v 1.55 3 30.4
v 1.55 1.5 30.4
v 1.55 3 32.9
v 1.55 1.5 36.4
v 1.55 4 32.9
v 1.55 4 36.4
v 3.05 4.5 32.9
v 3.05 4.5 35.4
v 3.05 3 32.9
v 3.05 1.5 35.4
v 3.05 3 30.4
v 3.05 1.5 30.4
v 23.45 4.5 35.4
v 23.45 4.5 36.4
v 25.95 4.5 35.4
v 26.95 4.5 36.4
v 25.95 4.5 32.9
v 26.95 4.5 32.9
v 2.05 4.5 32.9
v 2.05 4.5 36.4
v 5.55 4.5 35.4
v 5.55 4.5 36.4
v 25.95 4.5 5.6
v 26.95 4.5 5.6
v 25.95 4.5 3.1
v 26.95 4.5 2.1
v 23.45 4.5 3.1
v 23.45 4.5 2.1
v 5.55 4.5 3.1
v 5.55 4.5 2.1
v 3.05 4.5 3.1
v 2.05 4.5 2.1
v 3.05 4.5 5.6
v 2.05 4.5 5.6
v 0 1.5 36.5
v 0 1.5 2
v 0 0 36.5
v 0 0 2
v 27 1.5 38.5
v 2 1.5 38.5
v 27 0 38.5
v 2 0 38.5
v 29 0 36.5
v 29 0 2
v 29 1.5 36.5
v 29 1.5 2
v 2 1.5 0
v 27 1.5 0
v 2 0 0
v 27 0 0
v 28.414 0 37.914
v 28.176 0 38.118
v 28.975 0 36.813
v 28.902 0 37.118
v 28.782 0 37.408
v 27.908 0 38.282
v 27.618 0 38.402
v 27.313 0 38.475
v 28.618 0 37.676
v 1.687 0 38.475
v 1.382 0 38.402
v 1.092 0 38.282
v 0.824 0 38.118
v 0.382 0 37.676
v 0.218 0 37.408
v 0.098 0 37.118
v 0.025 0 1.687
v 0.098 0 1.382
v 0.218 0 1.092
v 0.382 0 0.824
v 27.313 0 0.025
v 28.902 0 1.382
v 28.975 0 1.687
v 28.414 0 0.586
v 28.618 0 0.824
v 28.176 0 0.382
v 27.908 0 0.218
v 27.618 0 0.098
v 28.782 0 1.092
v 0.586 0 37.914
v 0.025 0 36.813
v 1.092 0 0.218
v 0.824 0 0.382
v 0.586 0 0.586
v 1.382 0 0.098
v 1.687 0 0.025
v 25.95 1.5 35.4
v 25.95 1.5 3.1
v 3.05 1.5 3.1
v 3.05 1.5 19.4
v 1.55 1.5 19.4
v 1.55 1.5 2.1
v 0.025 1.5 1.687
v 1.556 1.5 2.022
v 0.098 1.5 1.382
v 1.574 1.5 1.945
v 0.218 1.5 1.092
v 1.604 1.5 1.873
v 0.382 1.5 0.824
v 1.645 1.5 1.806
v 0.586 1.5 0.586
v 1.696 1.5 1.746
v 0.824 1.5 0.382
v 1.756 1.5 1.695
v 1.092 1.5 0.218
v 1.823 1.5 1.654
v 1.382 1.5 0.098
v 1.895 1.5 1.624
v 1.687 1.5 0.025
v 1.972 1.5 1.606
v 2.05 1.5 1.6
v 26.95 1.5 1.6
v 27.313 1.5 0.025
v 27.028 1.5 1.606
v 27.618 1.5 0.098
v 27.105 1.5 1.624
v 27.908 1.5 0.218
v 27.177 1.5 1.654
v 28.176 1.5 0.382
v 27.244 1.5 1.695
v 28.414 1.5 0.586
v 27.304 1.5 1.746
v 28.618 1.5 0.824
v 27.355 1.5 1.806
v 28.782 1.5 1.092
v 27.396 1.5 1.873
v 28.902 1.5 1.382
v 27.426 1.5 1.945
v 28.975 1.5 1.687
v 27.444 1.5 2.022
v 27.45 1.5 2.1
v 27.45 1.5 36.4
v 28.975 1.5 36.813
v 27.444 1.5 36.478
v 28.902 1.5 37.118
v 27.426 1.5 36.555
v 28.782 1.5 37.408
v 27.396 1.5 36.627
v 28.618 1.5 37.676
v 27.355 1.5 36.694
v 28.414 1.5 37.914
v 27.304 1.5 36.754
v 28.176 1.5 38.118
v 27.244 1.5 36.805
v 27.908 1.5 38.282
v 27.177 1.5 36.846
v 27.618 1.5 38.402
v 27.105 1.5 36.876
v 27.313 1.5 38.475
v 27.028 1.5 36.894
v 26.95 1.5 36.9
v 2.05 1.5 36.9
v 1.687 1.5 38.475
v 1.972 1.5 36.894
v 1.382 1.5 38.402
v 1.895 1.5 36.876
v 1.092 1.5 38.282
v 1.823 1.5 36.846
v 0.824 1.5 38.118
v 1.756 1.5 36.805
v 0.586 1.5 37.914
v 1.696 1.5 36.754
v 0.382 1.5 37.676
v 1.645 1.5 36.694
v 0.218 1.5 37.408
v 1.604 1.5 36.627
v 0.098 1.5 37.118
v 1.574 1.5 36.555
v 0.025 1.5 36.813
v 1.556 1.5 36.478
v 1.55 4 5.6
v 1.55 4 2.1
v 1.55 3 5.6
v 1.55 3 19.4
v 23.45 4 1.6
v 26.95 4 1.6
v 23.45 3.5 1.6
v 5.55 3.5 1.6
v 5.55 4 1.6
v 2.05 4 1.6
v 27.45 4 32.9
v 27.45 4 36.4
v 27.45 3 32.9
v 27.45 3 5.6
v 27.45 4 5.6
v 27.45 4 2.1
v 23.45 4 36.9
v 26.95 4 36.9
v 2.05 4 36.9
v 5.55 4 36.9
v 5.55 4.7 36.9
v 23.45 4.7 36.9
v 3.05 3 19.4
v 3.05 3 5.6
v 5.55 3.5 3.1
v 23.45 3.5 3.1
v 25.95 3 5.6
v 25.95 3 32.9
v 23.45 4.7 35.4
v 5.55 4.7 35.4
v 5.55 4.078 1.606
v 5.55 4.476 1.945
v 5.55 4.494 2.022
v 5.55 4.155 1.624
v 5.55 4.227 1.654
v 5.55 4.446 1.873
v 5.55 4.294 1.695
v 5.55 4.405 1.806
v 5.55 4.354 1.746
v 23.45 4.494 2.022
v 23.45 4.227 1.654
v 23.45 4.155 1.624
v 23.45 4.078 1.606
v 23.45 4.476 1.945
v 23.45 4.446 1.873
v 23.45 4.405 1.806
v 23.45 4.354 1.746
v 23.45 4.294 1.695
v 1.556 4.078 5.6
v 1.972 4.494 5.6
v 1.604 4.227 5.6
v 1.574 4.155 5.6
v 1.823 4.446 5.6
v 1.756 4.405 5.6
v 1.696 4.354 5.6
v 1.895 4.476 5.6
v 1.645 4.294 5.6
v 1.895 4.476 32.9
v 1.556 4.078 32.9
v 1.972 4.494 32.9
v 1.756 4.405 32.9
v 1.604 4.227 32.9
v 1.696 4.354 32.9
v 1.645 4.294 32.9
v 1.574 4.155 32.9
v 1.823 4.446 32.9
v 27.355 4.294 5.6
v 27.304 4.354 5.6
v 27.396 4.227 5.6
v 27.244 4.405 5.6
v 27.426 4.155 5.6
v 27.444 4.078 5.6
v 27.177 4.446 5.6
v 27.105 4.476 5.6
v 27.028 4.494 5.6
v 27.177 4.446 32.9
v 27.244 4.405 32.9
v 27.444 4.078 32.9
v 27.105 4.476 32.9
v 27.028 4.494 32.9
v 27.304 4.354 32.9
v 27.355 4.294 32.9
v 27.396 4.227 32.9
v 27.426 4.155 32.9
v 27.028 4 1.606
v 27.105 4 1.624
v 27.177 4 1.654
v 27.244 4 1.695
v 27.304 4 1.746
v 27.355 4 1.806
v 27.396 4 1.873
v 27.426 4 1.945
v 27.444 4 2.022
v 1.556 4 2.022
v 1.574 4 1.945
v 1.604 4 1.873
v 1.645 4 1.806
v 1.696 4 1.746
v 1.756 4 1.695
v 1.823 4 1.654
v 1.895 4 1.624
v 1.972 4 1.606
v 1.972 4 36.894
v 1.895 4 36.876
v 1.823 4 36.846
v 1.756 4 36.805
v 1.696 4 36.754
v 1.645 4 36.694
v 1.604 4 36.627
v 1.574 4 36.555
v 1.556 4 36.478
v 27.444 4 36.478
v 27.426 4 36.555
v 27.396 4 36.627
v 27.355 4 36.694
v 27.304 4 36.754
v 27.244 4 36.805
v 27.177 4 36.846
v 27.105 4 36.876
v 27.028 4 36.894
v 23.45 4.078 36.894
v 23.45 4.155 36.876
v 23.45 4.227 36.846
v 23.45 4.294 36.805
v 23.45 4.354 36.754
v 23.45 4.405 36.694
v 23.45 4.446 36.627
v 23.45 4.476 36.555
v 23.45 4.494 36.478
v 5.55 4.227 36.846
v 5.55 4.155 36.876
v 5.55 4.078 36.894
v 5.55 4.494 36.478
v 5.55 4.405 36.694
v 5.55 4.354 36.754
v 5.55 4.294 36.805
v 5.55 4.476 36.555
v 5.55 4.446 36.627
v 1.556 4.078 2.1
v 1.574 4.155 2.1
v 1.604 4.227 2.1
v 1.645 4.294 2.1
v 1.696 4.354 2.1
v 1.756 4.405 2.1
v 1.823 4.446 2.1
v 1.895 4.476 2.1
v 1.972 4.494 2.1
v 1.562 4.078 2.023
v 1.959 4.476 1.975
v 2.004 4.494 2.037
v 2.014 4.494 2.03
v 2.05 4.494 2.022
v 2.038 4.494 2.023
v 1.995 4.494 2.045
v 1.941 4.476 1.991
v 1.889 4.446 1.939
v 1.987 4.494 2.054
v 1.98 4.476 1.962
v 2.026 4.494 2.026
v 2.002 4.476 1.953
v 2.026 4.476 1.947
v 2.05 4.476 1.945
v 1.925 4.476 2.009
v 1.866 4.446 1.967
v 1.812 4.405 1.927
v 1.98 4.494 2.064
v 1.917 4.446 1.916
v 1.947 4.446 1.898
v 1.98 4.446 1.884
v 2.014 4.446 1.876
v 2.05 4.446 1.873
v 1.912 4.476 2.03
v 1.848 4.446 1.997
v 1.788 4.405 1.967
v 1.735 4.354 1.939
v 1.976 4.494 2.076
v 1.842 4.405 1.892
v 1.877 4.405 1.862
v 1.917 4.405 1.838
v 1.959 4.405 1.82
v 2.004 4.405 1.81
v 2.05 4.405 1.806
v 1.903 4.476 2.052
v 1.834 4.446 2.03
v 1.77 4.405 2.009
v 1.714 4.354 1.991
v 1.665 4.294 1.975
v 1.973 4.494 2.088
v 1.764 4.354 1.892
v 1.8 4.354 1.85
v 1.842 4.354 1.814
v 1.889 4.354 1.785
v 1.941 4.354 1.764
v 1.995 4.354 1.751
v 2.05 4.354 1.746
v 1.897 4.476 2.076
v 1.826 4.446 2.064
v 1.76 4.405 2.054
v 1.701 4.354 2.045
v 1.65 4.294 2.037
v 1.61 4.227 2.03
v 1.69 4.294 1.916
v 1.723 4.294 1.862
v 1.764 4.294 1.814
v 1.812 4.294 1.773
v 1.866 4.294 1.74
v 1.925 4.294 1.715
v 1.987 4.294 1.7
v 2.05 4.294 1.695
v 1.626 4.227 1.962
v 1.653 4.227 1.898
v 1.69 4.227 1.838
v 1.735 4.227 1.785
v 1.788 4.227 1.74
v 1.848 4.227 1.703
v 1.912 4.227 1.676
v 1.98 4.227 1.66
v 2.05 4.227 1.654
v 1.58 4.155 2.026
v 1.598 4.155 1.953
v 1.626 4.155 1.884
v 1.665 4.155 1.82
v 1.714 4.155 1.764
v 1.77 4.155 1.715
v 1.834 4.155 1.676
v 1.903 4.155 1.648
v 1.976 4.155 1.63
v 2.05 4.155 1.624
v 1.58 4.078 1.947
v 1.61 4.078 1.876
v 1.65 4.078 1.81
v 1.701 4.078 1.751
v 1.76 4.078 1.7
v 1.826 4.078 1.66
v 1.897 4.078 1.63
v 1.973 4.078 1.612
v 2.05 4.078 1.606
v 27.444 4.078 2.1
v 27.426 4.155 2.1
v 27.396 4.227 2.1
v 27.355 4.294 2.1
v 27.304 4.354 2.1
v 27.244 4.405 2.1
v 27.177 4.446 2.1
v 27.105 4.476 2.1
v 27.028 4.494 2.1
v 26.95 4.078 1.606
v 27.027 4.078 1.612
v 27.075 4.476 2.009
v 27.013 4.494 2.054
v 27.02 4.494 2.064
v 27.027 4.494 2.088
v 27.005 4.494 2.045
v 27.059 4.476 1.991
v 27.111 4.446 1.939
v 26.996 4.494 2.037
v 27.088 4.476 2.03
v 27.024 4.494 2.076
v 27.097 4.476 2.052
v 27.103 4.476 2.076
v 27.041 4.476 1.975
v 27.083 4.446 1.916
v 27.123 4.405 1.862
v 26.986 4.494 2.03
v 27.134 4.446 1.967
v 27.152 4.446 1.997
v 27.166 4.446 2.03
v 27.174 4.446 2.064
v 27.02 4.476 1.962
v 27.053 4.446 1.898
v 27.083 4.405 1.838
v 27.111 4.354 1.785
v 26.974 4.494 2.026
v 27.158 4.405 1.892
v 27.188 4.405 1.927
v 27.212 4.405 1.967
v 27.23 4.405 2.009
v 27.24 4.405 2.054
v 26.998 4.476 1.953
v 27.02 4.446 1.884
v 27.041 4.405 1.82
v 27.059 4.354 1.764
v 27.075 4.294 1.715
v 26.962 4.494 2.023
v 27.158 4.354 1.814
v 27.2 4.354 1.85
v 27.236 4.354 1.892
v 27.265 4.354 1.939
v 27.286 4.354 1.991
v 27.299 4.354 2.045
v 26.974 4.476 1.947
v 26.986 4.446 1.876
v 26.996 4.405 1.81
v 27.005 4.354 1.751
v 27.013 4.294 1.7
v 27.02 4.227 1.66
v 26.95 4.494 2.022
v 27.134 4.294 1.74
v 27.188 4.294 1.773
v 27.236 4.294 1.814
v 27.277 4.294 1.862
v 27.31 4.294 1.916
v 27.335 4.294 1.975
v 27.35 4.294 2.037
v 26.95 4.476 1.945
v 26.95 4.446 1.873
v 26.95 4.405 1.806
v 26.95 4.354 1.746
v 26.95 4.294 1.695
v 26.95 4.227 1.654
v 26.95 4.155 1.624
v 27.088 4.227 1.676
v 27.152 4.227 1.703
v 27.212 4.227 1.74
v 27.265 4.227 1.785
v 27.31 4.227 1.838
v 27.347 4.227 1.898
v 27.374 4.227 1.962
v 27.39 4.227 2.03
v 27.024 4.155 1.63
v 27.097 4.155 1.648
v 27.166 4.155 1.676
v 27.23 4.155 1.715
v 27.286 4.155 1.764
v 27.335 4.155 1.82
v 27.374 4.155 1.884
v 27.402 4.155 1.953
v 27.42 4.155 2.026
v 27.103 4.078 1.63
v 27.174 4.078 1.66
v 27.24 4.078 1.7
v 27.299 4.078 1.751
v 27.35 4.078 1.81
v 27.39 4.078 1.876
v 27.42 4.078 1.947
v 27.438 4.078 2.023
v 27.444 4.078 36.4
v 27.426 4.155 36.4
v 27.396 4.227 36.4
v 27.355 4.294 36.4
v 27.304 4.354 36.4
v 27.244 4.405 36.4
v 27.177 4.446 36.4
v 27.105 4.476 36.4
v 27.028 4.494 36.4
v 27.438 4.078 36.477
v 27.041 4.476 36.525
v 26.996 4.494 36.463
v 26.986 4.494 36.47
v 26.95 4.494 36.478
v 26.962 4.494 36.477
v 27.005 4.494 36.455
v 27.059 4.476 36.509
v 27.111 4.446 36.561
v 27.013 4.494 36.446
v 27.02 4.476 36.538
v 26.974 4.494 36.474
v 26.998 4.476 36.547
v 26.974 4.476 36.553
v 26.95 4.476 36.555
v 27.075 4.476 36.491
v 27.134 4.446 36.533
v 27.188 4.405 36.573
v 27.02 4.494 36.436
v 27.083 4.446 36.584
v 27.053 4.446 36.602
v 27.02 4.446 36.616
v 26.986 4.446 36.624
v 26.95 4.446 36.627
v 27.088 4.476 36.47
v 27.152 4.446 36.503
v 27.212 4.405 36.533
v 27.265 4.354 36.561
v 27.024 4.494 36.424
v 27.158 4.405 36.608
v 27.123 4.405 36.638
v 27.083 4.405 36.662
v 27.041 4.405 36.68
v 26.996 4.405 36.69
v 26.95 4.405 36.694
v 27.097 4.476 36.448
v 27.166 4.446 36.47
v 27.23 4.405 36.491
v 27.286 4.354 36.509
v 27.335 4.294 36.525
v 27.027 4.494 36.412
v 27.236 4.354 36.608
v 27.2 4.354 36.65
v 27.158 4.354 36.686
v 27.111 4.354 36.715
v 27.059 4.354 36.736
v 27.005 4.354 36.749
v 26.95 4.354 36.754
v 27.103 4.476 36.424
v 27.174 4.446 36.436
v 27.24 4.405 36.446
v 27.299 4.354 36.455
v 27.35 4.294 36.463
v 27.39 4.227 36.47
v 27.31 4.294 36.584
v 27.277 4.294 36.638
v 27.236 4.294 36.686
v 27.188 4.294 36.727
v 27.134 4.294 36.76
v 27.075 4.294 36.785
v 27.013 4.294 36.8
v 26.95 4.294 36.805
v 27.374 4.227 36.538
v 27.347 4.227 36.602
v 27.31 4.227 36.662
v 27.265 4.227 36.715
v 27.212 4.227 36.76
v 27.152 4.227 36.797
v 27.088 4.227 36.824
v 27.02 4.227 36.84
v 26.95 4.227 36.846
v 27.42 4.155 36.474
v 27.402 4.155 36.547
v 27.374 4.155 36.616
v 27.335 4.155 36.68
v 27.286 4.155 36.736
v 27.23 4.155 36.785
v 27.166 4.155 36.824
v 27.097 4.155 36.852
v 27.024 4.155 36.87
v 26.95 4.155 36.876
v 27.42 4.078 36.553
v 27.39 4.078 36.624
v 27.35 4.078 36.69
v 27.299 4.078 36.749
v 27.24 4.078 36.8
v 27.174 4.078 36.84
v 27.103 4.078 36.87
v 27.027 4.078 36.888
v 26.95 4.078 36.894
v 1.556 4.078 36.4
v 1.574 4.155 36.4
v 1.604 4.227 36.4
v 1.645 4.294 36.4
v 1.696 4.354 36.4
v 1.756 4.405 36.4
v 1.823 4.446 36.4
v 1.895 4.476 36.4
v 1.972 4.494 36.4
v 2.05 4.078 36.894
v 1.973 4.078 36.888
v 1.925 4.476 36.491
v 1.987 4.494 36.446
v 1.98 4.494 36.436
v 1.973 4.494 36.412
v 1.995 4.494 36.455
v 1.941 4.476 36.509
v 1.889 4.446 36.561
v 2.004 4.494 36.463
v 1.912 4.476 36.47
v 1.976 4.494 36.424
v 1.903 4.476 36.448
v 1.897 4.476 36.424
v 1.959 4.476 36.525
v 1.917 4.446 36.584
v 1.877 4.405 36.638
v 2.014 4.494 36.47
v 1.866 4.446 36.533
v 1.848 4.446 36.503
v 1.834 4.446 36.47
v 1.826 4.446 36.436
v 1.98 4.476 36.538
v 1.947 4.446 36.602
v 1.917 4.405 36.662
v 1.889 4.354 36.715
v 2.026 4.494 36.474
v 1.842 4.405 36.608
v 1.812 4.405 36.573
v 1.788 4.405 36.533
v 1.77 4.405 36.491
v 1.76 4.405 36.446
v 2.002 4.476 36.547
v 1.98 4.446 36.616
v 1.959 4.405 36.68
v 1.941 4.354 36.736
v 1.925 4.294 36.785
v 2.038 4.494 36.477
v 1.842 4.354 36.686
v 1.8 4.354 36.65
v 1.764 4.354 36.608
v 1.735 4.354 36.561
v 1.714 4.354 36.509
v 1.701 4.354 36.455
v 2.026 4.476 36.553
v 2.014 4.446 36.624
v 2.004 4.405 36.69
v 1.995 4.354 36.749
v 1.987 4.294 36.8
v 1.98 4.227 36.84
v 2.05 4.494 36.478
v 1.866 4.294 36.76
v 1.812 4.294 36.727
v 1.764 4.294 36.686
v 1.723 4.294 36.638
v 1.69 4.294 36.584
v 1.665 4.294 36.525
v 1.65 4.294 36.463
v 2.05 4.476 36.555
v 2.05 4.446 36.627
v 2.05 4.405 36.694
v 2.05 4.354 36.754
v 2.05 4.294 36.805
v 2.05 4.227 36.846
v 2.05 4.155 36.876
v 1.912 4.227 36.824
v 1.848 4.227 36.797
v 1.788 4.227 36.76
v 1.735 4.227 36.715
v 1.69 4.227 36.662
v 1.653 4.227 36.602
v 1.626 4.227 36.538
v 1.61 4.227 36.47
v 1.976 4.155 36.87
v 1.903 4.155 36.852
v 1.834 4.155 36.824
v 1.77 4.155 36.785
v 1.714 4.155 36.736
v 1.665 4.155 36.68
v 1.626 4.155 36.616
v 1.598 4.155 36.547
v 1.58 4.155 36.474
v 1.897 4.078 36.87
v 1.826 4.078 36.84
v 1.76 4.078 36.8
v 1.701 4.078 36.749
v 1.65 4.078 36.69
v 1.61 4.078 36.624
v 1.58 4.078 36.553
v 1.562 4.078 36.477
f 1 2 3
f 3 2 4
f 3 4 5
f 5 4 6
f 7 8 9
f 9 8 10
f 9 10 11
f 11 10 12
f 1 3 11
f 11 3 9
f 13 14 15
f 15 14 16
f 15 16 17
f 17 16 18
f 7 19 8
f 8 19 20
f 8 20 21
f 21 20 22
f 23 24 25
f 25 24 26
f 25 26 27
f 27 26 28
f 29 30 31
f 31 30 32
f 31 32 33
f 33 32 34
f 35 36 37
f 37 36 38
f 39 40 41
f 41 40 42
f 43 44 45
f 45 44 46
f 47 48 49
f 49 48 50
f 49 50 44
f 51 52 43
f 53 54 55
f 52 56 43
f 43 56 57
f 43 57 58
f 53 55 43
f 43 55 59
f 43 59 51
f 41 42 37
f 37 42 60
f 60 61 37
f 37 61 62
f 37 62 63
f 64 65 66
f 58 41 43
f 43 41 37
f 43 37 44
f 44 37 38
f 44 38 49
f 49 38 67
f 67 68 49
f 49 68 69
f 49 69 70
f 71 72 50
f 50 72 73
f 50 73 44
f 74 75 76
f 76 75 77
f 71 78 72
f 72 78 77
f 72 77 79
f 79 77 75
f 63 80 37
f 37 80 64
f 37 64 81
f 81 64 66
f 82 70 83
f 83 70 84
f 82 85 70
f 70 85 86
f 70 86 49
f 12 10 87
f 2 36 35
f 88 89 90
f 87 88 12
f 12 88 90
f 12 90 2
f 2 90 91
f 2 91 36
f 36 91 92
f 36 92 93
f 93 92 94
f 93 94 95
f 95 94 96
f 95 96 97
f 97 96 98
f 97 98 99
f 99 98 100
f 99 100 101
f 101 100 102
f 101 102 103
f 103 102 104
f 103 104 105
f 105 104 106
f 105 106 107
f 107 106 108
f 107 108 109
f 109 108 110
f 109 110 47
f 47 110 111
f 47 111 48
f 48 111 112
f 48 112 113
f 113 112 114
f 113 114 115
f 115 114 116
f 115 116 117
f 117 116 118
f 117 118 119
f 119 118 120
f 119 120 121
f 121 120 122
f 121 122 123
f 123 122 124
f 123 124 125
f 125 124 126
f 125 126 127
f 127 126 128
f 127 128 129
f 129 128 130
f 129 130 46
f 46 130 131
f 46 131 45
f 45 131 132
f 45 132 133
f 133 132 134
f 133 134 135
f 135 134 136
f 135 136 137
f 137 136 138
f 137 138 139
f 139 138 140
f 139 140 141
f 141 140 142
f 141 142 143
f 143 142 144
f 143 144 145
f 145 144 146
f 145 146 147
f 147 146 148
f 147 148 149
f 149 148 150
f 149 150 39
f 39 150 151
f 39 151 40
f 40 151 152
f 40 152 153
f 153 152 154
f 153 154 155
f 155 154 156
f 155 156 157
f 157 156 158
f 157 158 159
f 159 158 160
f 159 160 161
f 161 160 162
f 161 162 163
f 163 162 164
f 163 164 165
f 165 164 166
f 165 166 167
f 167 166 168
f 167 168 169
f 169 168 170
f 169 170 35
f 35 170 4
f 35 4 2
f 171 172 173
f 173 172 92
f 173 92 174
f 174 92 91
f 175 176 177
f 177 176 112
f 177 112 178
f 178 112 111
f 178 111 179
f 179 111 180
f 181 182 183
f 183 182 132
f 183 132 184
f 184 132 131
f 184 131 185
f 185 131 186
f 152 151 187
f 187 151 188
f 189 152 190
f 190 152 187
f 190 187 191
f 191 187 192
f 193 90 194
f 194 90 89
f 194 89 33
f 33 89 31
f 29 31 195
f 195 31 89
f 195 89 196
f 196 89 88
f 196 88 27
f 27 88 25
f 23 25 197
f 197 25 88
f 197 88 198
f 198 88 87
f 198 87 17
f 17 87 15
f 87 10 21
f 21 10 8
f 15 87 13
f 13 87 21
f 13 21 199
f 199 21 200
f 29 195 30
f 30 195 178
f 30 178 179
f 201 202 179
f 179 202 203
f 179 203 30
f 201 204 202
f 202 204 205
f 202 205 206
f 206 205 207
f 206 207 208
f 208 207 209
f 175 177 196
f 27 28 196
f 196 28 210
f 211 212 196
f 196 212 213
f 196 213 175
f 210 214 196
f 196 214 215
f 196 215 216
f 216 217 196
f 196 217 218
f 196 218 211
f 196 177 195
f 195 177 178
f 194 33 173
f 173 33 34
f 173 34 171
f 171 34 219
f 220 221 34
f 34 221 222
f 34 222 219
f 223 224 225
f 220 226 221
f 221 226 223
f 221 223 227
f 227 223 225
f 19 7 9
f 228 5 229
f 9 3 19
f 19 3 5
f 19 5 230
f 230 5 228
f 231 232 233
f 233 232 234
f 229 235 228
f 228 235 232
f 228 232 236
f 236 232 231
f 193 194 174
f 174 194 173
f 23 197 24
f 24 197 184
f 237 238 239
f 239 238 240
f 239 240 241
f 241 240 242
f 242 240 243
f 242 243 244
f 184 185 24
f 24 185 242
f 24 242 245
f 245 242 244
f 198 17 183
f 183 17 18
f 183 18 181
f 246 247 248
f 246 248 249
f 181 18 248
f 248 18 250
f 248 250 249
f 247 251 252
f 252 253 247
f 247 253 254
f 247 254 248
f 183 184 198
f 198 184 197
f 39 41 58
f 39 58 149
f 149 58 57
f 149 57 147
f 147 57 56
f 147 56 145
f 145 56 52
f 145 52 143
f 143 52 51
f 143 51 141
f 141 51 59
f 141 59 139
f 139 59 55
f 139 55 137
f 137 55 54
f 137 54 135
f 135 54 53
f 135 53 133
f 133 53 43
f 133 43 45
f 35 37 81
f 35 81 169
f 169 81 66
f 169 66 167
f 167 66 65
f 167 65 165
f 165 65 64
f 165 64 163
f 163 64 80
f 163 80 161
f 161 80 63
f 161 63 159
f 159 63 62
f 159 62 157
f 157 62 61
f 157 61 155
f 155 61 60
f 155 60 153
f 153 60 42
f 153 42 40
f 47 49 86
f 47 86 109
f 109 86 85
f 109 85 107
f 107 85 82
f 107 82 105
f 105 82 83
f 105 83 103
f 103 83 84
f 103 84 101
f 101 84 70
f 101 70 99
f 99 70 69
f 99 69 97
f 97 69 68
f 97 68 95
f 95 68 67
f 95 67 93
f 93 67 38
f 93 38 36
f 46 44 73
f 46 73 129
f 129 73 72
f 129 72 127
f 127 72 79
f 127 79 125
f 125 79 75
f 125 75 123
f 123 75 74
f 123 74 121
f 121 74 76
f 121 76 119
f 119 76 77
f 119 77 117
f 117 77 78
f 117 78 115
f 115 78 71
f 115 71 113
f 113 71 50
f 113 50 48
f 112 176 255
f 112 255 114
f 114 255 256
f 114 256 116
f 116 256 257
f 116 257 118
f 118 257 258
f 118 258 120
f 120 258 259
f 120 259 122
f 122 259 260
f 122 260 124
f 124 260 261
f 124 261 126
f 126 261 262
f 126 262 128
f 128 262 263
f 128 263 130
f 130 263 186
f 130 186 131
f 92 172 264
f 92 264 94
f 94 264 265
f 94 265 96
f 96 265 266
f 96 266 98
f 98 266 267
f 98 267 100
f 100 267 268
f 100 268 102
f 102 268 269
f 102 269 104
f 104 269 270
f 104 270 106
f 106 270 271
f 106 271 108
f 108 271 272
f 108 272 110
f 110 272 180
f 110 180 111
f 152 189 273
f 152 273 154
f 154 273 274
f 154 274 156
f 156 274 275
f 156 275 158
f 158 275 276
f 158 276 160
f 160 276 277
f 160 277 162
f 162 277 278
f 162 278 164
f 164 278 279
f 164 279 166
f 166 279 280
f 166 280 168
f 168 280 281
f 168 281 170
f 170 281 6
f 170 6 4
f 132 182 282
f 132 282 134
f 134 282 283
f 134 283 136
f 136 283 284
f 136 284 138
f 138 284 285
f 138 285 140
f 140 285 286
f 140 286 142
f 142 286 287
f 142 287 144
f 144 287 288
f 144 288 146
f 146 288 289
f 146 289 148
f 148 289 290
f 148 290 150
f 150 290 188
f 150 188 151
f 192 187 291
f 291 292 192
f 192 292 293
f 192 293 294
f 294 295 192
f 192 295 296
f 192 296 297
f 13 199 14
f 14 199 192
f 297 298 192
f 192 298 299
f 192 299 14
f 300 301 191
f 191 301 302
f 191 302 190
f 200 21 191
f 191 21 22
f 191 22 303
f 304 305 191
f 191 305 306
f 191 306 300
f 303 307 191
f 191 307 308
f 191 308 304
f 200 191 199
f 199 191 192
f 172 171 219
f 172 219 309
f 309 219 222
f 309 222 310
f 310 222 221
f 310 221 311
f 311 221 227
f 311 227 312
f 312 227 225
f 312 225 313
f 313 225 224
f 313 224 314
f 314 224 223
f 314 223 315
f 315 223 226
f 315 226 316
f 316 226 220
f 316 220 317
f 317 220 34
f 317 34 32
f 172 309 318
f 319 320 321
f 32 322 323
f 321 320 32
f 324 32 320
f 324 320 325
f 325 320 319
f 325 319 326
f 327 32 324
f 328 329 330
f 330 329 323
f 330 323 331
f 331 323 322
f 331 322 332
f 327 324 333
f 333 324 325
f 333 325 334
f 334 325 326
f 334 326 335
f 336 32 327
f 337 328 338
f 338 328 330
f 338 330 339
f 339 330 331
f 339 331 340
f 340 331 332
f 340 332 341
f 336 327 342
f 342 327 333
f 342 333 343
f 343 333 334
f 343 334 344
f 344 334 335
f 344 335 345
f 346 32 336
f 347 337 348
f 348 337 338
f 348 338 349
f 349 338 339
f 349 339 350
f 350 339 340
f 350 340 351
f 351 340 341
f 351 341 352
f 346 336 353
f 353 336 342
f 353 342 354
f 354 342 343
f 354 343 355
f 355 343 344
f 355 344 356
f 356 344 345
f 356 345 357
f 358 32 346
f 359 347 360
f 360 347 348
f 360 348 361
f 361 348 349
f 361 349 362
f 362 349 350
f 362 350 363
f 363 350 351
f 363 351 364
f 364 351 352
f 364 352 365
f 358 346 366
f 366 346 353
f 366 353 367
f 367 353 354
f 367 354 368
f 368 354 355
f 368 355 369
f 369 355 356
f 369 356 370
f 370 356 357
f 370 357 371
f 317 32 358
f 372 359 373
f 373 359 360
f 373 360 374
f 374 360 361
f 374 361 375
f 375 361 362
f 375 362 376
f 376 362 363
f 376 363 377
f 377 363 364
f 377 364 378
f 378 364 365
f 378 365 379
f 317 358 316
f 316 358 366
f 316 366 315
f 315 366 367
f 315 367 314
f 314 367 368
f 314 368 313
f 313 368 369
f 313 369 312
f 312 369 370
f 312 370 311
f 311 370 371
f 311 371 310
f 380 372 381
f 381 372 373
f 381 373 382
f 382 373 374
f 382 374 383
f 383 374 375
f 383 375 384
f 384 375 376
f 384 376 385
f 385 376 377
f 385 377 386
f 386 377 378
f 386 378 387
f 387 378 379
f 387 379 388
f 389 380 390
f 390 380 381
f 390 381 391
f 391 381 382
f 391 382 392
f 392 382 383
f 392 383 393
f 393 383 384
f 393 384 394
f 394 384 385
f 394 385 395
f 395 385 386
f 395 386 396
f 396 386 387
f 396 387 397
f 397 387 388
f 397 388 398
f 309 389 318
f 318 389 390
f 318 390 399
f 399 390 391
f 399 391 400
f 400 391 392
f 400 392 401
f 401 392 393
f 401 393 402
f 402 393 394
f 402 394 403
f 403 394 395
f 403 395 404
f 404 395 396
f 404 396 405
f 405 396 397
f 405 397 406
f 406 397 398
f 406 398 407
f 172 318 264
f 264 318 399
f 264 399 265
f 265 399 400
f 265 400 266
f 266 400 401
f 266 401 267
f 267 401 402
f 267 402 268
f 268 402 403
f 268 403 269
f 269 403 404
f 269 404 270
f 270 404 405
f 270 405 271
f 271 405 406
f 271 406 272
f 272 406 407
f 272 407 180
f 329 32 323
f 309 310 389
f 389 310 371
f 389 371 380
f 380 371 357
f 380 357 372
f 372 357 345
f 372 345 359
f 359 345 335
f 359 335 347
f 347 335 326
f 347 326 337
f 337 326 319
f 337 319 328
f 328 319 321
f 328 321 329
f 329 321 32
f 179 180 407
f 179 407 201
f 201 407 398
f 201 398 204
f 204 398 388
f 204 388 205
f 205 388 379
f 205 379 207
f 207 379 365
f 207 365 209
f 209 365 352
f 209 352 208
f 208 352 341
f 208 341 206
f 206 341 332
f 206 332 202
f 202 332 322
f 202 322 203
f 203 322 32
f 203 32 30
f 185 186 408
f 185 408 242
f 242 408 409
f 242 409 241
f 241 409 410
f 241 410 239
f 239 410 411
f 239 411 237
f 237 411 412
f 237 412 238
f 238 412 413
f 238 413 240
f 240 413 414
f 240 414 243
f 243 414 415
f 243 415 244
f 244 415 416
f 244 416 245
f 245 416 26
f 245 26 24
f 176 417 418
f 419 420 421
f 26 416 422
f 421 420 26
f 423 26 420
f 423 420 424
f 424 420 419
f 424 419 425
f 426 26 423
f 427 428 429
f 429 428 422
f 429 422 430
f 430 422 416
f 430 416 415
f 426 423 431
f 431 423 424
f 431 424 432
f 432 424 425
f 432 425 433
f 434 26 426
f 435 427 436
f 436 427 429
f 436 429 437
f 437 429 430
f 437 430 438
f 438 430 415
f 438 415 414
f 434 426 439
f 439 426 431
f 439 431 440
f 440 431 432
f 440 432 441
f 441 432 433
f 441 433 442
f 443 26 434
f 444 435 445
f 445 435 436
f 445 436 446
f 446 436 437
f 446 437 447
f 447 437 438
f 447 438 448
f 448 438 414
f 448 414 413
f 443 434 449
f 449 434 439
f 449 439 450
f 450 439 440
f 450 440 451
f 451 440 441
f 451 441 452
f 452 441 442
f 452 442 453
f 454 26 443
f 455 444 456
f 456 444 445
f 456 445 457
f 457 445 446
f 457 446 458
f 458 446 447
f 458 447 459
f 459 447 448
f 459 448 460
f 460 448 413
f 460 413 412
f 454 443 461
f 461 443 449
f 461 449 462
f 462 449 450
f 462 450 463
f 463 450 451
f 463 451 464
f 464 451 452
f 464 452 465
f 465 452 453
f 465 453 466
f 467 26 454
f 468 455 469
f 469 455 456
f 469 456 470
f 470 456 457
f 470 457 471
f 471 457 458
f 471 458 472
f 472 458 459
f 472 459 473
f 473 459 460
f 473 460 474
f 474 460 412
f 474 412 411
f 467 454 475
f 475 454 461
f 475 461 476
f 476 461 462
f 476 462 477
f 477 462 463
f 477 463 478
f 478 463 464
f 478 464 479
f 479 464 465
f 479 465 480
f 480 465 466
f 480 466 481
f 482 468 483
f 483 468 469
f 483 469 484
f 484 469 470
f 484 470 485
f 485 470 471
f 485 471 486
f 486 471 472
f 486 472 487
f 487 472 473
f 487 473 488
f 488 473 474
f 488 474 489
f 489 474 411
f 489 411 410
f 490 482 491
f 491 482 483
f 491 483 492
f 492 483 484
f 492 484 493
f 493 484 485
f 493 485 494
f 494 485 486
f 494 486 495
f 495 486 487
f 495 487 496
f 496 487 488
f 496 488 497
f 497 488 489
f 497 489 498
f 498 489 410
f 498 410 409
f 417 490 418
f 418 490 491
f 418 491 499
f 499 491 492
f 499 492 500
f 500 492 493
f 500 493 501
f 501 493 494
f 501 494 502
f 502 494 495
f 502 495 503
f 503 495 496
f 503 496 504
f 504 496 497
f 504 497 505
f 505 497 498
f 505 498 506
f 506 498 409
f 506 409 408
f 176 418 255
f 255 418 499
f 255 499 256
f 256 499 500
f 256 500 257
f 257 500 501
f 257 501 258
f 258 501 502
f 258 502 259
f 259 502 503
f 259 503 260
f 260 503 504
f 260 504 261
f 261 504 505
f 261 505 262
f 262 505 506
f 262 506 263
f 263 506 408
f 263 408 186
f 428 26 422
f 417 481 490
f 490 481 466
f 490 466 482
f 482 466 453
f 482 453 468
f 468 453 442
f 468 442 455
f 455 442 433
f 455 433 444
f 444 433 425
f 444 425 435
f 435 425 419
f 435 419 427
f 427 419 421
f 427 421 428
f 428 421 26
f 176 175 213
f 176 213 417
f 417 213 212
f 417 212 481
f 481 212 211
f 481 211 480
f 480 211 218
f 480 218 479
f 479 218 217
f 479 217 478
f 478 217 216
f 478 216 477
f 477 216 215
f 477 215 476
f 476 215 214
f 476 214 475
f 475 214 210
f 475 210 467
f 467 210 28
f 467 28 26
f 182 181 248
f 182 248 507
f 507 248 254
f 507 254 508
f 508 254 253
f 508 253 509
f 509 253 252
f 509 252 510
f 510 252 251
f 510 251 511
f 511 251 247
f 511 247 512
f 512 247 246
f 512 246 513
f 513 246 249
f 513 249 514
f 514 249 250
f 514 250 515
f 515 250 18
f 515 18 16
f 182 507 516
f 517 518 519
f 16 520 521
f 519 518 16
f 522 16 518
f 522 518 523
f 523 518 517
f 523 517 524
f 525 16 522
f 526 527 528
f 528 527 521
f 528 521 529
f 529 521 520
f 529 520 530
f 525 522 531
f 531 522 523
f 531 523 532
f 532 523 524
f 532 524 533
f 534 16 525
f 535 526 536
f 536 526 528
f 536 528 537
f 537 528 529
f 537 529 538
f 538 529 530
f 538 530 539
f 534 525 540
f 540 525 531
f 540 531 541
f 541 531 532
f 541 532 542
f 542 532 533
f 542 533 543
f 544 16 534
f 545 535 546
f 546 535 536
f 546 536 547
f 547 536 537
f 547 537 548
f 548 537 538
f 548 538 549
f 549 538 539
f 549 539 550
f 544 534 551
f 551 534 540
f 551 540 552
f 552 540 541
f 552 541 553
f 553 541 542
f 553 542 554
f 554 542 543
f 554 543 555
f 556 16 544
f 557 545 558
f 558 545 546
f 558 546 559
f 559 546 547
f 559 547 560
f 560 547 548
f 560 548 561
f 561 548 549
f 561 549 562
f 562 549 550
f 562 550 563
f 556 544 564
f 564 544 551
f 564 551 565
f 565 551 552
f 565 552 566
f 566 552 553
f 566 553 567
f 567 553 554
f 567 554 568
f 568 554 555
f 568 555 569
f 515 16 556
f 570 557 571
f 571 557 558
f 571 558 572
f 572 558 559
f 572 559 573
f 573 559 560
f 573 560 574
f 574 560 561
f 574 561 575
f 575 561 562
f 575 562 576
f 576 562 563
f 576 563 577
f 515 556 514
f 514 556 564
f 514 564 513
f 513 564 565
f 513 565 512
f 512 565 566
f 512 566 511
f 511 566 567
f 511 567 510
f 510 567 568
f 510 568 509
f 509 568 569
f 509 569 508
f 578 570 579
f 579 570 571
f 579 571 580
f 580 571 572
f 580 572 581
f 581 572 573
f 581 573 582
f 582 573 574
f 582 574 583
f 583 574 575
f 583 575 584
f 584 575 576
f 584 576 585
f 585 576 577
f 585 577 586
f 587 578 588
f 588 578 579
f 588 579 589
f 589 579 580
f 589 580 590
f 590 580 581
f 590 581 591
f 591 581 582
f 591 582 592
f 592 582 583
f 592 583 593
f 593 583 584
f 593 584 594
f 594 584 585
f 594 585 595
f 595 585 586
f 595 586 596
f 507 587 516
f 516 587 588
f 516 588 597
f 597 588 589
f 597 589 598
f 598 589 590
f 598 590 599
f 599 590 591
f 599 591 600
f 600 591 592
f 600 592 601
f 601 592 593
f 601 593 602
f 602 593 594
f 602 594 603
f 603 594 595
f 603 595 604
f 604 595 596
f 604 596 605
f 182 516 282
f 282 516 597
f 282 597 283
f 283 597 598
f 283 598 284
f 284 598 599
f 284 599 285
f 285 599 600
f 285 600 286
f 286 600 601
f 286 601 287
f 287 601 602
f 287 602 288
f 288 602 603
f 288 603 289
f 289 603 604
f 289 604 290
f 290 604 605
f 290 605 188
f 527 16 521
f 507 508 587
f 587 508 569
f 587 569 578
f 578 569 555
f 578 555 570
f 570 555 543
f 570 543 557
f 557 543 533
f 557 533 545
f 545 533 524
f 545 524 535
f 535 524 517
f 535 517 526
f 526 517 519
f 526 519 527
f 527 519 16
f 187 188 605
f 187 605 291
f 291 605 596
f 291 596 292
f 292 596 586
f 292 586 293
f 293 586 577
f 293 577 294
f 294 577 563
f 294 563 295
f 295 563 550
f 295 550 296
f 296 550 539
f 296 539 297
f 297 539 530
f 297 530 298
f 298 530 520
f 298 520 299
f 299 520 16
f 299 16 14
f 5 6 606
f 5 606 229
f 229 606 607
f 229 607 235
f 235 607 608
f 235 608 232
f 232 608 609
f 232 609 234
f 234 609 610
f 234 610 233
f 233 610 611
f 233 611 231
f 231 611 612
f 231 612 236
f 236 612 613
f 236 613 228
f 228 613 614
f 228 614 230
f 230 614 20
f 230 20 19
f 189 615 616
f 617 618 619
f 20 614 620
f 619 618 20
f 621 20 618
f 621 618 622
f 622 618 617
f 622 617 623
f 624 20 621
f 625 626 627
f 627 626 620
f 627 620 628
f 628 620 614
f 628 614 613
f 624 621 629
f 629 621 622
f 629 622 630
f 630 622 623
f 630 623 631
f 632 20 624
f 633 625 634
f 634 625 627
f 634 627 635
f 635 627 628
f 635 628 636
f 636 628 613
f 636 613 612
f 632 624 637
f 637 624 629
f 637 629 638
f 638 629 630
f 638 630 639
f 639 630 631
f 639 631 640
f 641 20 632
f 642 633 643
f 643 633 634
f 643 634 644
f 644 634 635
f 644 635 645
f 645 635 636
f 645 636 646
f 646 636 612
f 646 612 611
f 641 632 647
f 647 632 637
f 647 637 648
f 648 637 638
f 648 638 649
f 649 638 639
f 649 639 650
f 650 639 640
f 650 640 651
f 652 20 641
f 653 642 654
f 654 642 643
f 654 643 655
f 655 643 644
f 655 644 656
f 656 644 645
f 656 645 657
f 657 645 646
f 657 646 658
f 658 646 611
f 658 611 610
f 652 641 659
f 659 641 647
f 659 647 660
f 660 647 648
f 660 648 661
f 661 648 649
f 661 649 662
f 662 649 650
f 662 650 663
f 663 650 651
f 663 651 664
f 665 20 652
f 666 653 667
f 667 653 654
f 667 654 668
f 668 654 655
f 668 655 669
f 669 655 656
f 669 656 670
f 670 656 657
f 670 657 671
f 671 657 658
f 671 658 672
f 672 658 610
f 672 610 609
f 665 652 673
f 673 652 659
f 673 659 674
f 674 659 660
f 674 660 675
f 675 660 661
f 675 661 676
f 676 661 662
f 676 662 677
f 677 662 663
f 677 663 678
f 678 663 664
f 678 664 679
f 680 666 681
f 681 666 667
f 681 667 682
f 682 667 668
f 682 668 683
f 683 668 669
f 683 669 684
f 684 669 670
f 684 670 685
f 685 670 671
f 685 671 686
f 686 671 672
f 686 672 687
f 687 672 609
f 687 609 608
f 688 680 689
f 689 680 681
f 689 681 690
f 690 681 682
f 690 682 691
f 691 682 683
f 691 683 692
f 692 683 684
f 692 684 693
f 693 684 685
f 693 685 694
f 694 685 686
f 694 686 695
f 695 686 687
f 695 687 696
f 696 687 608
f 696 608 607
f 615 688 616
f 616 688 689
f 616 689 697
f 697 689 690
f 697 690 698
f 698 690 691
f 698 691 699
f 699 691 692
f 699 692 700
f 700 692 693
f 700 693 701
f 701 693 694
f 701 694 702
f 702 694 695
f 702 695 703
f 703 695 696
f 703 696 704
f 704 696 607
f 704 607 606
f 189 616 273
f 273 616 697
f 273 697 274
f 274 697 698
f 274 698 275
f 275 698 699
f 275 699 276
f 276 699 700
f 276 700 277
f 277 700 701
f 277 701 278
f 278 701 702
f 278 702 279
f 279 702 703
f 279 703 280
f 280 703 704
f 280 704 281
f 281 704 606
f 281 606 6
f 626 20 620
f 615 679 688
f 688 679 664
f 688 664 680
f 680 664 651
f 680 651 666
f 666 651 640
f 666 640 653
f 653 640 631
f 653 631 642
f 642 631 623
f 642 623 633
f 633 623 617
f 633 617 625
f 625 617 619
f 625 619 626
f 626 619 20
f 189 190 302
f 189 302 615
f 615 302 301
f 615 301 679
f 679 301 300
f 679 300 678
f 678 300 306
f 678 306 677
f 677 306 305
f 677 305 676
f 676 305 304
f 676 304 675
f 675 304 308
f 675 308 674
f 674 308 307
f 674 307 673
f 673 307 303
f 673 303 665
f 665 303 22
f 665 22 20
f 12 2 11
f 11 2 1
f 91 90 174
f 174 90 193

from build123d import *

# Parameters (mm, degrees)
SKETCH_1_W          = 29
SKETCH_1_H          = 38.5
EXTRUDE_2_DEPTH     = 4.5
SKETCH_3_W          = 29
SKETCH_3_H          = 38.5
SKETCH_3_W_2        = 25.9
SKETCH_3_H_2        = 35.3
CUT_EXTRUDE_1_DEPTH = 3
SKETCH_4_W          = 22.9
SKETCH_4_H          = 32.3
CUT_EXTRUDE_2_DEPTH = 3
SKETCH_5_W          = 17.9
SKETCH_5_H          = 1.5
CUT_EXTRUDE_3_DEPTH = 1
SKETCH_6_W          = 1.5
SKETCH_6_H          = 27.3
CUT_EXTRUDE_5_DEPTH = 1.5
FILLET_1_R          = 2
FILLET_5_R          = 0.5
SKETCH_8_W          = 17.9
SKETCH_8_H          = 1.5
EXTRUDE_7_DEPTH     = 0.2
FILLET_6_R          = 0.5
SKETCH_10_W         = 1.5
SKETCH_10_H         = 11
CUT_EXTRUDE_6_DEPTH = 1.5


with BuildPart() as part:
    # 草图1 → 凸台-拉伸2 (new body)
    with BuildSketch(Plane(origin=(0, 0, 0), x_dir=(1, 0, 0), z_dir=(0, 1, 0))):
        with Locations((14.5, -19.25)):
            Rectangle(SKETCH_1_W, SKETCH_1_H)
    extrude(amount=EXTRUDE_2_DEPTH)

    # 草图3 → 切除-拉伸1 (cut)
    with BuildSketch(Plane(origin=(0, 4.5, 0), x_dir=(1, 0, 0), z_dir=(0, 1, 0))):
        with Locations((14.5, -19.25)):
            Rectangle(SKETCH_3_W, SKETCH_3_H)
        with Locations((14.5, -19.25)):
            Rectangle(SKETCH_3_W_2, SKETCH_3_H_2, mode=Mode.SUBTRACT)
    extrude(amount=-CUT_EXTRUDE_1_DEPTH, mode=Mode.SUBTRACT)

    # 草图4 → 切除-拉伸2 (cut)
    with BuildSketch(Plane(origin=(0, 4.5, 0), x_dir=(1, 0, 0), z_dir=(0, 1, 0))):
        with Locations((14.5, -19.25)):
            Rectangle(SKETCH_4_W, SKETCH_4_H)
    extrude(amount=-CUT_EXTRUDE_2_DEPTH, mode=Mode.SUBTRACT)

    # 草图5 → 切除-拉伸3 (cut)
    with BuildSketch(Plane(origin=(0, 4.5, 0), x_dir=(1, 0, 0), z_dir=(0, 1, 0))):
        with Locations((14.5, -2.35)):
            Rectangle(SKETCH_5_W, SKETCH_5_H)
    extrude(amount=-CUT_EXTRUDE_3_DEPTH, mode=Mode.SUBTRACT)

    # 草图6 → 切除-拉伸5 (cut)
    with BuildSketch(Plane(origin=(0, 4.5, 0), x_dir=(1, 0, 0), z_dir=(0, 1, 0))):
        with Locations((2.3, -19.25)):
            Rectangle(SKETCH_6_W, SKETCH_6_H)
        with Locations((26.7, -19.25)):
            Rectangle(SKETCH_6_W, SKETCH_6_H)
    extrude(amount=-CUT_EXTRUDE_5_DEPTH, mode=Mode.SUBTRACT)

    # 圆角1
    fillet_1_edges = [part.edges().sort_by_distance(p)[0] for p in [
        (0, 0.75, 0),
        (29, 0.75, 0),
        (29, 0.75, 38.5),
        (0, 0.75, 38.5),
    ]]
    fillet(fillet_1_edges, radius=FILLET_1_R)

    # 圆角5
    fillet_5_edges = [part.edges().sort_by_distance(p)[0] for p in [
        (1.55, 3, 1.6),
        (27.45, 3, 1.6),
        (27.45, 3, 36.9),
        (1.55, 3, 36.9),
    ]]
    fillet(fillet_5_edges, radius=FILLET_5_R)

    # 草图8 → 凸台-拉伸7 (add)
    with BuildSketch(Plane(origin=(0, 4.5, 0), x_dir=(1, 0, 0), z_dir=(0, 1, 0))):
        with Locations((14.5, -36.15)):
            Rectangle(SKETCH_8_W, SKETCH_8_H)
    extrude(amount=EXTRUDE_7_DEPTH)

    # 圆角6
    fillet_6_edges = [part.edges().sort_by_distance(p)[0] for p in [
        (27.45, 4.5, 34.65),
        (25.2, 4.5, 1.6),
        (27.303553391, 4.5, 1.746446609),
        (1.55, 4.5, 3.85),
        (1.696446609, 4.5, 1.746446609),
        (3.8, 4.5, 36.9),
        (27.303553391, 4.5, 36.753553391),
        (1.696446609, 4.5, 36.753553391),
        (25.2, 4.5, 36.9),
        (3.8, 4.5, 1.6),
        (1.55, 4.5, 34.65),
        (27.45, 4.5, 3.85),
    ]]
    fillet(fillet_6_edges, radius=FILLET_6_R)

    # 草图10 → 切除-拉伸6 (cut)
    with BuildSketch(Plane(origin=(0, 3, 0), x_dir=(1, 0, 0), z_dir=(0, 1, 0))):
        with Locations((2.3, -24.9)):
            Rectangle(SKETCH_10_W, SKETCH_10_H)
    extrude(amount=-CUT_EXTRUDE_6_DEPTH, mode=Mode.SUBTRACT)


solid = part.part
